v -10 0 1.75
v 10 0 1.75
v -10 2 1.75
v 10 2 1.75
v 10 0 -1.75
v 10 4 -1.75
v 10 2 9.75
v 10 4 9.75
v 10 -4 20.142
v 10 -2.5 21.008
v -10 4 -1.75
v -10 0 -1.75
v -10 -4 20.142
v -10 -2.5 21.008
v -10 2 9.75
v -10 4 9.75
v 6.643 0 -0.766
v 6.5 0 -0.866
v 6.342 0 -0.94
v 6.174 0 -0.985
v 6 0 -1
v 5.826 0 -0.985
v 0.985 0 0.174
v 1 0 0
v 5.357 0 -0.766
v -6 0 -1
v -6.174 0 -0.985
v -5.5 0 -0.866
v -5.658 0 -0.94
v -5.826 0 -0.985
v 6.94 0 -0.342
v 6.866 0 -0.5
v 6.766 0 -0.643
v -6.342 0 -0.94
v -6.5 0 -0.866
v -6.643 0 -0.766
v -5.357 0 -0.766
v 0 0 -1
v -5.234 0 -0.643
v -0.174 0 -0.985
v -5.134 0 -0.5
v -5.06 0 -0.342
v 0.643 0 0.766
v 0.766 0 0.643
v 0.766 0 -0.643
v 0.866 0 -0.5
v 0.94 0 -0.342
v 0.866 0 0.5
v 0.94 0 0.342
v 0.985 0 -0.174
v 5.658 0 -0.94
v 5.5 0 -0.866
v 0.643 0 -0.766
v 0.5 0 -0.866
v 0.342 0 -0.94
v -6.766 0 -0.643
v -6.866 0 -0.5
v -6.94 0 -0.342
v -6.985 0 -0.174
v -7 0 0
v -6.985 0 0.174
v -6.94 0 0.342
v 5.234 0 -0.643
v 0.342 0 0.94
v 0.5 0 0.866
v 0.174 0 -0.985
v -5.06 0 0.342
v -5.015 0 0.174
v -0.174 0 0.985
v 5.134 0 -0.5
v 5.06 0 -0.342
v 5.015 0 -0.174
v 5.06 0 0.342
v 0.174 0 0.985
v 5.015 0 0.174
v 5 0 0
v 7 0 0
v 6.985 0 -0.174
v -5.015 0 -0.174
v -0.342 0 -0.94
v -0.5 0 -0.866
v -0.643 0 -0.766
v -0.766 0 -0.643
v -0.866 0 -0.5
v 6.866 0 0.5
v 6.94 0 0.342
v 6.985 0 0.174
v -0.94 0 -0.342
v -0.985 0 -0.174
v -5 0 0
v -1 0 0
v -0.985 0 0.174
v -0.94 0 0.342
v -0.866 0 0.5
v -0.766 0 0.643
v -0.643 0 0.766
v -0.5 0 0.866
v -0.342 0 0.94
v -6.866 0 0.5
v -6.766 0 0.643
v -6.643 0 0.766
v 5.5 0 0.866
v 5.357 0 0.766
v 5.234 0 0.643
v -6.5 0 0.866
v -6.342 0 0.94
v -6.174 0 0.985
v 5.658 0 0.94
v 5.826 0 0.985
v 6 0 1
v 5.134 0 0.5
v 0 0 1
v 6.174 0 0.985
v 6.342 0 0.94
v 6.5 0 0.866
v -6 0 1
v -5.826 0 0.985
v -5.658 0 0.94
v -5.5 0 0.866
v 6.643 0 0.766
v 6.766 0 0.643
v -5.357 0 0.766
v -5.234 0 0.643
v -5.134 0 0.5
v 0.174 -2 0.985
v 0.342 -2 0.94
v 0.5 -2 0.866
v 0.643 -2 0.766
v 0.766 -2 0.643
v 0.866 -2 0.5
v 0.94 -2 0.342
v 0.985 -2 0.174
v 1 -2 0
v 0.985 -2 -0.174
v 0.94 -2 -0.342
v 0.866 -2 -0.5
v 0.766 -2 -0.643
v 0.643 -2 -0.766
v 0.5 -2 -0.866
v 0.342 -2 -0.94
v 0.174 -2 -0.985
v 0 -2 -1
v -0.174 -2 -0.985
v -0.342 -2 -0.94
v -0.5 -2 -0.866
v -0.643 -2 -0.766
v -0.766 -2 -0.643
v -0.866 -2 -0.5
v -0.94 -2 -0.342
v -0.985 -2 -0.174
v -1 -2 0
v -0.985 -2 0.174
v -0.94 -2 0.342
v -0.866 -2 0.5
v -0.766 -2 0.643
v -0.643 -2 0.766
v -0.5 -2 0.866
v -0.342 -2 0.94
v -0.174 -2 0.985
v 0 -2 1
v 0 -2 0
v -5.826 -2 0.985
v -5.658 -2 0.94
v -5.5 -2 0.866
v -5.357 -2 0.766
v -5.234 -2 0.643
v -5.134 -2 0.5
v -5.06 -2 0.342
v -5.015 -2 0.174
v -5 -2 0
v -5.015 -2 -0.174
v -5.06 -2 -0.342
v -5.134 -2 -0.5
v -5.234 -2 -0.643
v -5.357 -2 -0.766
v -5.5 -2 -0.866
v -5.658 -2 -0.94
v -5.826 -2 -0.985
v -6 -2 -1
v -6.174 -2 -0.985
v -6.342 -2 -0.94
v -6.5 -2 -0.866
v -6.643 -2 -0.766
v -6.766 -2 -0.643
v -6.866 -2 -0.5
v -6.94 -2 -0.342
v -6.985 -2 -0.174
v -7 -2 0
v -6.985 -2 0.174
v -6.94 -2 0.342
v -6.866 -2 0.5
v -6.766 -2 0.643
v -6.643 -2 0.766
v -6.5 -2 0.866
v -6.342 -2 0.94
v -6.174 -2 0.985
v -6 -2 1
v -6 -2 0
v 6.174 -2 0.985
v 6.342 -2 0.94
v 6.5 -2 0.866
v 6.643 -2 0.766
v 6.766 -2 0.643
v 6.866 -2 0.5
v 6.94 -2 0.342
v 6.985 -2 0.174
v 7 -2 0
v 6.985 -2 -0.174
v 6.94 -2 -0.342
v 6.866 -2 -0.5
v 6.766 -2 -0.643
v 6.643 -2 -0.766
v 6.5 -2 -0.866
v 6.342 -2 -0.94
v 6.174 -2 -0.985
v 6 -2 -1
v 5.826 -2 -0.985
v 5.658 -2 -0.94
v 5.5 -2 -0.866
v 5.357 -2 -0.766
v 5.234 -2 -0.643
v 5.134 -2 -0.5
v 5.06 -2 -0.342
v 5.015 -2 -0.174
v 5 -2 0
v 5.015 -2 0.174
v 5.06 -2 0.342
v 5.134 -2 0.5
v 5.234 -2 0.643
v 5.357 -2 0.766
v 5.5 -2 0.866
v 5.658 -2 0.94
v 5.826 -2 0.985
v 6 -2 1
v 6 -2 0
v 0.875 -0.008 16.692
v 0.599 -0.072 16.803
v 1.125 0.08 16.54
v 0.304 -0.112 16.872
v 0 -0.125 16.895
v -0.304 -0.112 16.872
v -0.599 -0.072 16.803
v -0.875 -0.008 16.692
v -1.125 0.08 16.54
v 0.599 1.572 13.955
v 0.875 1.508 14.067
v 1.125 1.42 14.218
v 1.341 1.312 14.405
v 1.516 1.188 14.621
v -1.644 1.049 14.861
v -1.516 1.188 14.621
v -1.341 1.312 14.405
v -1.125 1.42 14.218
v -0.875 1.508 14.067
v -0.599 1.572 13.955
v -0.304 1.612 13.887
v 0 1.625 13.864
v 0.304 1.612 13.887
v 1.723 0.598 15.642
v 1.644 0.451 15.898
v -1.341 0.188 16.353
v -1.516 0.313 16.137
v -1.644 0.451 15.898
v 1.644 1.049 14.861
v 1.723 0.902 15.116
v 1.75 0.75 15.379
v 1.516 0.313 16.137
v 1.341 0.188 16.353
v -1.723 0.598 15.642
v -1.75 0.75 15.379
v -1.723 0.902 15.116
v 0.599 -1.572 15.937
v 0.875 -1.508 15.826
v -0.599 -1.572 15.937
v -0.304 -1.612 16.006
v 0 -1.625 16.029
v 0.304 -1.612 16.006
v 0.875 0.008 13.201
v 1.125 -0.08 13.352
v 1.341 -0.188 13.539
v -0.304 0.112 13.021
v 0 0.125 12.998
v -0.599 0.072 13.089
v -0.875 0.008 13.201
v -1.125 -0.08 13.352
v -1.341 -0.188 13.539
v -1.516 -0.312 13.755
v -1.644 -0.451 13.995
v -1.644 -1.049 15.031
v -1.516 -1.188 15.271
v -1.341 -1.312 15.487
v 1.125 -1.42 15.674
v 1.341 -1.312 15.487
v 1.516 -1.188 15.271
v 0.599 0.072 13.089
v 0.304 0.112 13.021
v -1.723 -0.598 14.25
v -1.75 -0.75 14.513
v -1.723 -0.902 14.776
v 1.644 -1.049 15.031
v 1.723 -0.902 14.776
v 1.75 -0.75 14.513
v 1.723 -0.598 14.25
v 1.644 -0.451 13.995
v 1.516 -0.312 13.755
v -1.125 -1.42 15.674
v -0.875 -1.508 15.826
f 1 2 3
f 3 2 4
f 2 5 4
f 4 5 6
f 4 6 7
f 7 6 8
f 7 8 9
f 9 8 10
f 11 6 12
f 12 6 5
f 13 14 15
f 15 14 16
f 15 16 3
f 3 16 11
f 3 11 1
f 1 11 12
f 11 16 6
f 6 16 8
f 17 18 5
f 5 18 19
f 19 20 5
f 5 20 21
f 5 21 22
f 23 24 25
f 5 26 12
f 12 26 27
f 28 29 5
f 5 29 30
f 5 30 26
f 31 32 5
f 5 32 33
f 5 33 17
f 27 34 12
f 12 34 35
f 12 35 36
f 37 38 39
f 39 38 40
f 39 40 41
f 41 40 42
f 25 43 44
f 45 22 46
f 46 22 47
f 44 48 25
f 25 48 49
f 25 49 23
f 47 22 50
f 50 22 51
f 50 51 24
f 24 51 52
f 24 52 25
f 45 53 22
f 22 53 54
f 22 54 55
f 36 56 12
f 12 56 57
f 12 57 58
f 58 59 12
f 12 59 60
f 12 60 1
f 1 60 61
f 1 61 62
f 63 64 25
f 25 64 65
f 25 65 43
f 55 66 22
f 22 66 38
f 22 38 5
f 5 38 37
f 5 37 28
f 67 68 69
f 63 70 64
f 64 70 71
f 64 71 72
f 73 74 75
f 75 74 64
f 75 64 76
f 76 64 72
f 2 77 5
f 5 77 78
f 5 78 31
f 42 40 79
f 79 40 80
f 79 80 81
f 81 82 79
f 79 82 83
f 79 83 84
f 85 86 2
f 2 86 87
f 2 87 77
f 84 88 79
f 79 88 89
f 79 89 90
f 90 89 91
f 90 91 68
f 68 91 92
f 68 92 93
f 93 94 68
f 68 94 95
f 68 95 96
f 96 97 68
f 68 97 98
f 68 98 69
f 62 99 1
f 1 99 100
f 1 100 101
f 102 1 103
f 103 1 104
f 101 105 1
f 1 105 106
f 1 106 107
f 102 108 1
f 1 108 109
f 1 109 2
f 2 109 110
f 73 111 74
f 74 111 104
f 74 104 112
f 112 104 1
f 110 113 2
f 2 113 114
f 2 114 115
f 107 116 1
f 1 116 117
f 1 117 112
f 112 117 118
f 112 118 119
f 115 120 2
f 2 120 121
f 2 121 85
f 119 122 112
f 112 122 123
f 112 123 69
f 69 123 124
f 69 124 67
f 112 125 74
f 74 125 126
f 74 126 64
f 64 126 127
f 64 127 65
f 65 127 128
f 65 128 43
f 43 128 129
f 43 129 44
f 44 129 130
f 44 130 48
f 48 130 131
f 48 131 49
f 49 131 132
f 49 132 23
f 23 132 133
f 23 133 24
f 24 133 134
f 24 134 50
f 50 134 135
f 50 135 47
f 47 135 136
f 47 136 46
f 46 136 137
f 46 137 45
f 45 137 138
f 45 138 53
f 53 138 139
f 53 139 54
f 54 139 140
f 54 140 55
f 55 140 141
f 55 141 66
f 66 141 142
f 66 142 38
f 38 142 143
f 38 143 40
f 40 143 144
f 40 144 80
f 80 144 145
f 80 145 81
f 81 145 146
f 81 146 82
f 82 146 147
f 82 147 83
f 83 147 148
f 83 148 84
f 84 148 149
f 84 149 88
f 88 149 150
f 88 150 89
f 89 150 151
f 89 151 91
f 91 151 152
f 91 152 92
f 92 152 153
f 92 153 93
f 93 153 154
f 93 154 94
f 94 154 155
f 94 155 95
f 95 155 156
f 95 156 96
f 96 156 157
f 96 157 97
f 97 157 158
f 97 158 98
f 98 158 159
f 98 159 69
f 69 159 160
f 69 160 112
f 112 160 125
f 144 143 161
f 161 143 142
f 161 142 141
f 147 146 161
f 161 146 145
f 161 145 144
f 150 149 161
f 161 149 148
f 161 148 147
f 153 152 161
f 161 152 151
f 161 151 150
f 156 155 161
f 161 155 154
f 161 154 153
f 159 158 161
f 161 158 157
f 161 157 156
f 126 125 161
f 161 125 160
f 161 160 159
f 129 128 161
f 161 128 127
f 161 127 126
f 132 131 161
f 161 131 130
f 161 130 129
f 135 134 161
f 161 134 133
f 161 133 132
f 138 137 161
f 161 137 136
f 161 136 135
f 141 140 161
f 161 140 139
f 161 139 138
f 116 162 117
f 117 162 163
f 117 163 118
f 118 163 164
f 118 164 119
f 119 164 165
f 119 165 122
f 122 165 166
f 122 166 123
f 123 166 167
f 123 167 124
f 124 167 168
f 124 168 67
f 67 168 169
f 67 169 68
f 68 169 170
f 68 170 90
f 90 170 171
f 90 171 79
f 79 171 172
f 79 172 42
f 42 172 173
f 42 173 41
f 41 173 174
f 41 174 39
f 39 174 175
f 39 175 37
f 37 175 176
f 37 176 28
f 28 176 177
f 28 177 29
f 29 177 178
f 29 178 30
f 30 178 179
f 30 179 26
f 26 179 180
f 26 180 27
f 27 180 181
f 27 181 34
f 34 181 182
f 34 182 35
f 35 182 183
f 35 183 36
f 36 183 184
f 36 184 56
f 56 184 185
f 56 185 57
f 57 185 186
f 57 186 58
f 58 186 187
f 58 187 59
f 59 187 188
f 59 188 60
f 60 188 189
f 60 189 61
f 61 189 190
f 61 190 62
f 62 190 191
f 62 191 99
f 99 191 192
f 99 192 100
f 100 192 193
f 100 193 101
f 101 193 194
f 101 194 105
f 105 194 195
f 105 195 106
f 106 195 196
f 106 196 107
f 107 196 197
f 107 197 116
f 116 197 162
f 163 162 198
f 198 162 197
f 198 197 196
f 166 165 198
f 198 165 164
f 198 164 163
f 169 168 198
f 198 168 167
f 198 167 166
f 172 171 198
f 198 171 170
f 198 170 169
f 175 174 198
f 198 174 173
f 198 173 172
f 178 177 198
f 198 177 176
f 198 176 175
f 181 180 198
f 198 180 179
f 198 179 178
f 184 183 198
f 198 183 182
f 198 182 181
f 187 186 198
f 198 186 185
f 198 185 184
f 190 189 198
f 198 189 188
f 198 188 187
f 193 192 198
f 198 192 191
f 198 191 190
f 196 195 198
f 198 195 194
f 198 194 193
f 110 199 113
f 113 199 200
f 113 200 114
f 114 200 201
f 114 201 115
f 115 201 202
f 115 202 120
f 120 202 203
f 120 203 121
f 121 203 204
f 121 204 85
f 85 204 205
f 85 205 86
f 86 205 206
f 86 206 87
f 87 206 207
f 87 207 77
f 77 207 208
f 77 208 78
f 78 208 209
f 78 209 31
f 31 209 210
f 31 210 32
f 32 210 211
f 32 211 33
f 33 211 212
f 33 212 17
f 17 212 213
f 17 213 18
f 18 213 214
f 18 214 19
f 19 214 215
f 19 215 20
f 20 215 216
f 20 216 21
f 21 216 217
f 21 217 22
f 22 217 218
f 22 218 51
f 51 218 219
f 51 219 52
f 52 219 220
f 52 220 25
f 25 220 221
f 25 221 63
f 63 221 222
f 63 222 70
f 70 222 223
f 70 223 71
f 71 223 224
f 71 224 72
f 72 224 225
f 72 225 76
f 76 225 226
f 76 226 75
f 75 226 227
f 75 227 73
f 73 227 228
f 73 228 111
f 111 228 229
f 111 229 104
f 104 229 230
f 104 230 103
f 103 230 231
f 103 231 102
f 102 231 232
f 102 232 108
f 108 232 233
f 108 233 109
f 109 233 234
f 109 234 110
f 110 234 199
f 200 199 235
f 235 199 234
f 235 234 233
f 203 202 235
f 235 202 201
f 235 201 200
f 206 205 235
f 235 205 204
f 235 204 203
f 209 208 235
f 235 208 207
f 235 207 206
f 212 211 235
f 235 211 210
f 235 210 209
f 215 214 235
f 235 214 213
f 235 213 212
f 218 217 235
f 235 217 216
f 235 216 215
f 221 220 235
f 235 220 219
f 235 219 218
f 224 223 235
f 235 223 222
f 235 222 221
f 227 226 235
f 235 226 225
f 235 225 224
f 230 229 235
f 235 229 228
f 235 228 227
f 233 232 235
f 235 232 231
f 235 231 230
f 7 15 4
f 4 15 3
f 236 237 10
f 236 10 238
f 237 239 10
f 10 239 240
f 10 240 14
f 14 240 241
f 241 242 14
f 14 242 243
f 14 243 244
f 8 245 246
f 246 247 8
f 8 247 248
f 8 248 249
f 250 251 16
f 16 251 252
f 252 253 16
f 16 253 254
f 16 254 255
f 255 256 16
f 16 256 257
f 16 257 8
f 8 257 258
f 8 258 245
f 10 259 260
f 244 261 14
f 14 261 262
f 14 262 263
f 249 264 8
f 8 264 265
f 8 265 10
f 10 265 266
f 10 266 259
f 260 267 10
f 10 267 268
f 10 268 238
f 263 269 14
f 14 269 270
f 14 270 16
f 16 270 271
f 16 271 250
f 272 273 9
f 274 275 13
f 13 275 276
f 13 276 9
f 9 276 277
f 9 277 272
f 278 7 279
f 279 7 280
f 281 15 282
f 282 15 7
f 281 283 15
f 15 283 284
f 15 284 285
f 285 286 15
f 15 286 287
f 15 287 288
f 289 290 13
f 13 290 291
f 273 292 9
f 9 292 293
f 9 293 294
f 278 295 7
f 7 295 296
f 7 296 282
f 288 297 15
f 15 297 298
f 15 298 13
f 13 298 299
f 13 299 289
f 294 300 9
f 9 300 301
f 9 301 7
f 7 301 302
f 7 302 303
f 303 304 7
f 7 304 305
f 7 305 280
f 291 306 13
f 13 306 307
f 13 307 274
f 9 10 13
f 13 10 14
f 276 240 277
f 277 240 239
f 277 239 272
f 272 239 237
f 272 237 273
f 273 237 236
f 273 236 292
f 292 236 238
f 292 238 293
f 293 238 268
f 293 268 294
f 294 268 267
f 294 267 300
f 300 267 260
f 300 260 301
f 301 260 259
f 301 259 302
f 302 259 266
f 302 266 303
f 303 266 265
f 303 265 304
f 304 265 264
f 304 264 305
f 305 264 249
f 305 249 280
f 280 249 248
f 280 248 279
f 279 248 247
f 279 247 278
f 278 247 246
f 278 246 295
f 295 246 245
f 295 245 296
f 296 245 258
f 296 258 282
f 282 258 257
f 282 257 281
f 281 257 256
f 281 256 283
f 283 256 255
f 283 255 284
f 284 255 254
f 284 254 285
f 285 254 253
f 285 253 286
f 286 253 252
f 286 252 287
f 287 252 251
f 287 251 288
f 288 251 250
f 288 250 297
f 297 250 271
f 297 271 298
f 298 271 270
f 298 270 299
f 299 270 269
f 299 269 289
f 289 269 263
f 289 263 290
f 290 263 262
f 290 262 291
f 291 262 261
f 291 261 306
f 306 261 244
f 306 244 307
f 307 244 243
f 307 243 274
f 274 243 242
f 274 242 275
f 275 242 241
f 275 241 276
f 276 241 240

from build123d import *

# Parameters (mm, degrees)
CROQUIS1_W                          = 20
CROQUIS1_H                          = 3.5
SALIENTE_EXTRUIR1_DEPTH             = 4
CROQUIS2_R                          = 1
SALIENTE_EXTRUIR2_DEPTH             = 2
CROQUIS3_W                          = 20
CROQUIS3_H                          = 2
SALIENTE_EXTRUIR3_DEPTH             = 8
CROQUIS4_W                          = 20
CROQUIS4_H                          = 1.732050807
SALIENTE_EXTRUIR4_DEPTH             = 12
SALIENTE_EXTRUIR4_DIRECTION_2_REACH = 17.06
CROQUIS5_R                          = 1.75
CORTAR_EXTRUIR1_DEPTH               = 23.571551689


with BuildPart() as part:
    # Croquis1 → Saliente-Extruir1 (new body)
    with BuildSketch(Plane(origin=(0, 0, 0), x_dir=(1, 0, 0), z_dir=(0, 1, 0))):
        Rectangle(CROQUIS1_W, CROQUIS1_H)
    extrude(amount=SALIENTE_EXTRUIR1_DEPTH)

    # Croquis2 → Saliente-Extruir2 (add)
    with BuildSketch(Plane.XZ):
        with Locations(Location((0, 0, 0), (0, 0, 270))):
            Circle(CROQUIS2_R)
        with Locations(Location((-6, 0, 0), (0, 0, 90))):
            Circle(CROQUIS2_R)
        with Locations(Location((6, 0, 0), (0, 0, 90))):
            Circle(CROQUIS2_R)
    extrude(amount=SALIENTE_EXTRUIR2_DEPTH)

    # Croquis3 → Saliente-Extruir3 (add)
    with BuildSketch(Plane.XY.offset(1.75)):
        with Locations((0, 3)):
            Rectangle(CROQUIS3_W, CROQUIS3_H)
    extrude(amount=SALIENTE_EXTRUIR3_DEPTH)

    # Croquis4 → Saliente-Extruir4 (add)
    with BuildSketch(Plane(origin=(0, -3.721873843, 6.446474596), x_dir=(1, 0, 0), z_dir=(0, -0.500000000000001, 0.866025403784438))):
        with Locations((0, 7.473076212)):
            Rectangle(CROQUIS4_W, CROQUIS4_H)
    extrude(amount=SALIENTE_EXTRUIR4_DEPTH)

    # Croquis4 → Saliente-Extruir4 direction 2 (add, up to next)
    with BuildSketch(Plane(origin=(0, -3.721873843, 6.446474596), x_dir=(1, 0, 0), z_dir=(0, -0.500000000000001, 0.866025403784438)), mode=Mode.PRIVATE) as saliente_extruir4_direction_2_sk1:
        with Locations((0, 7.473076212)):
            Rectangle(CROQUIS4_W, CROQUIS4_H)
    saliente_extruir4_direction_2_tool1 = extrude(saliente_extruir4_direction_2_sk1.sketch, amount=-SALIENTE_EXTRUIR4_DIRECTION_2_REACH, mode=Mode.PRIVATE) - part.part
    add(saliente_extruir4_direction_2_tool1.solids().sort_by_distance((0, 2.75, 10.183013))[0])

    # Croquis5 → Cortar-Extruir1 (cut, through all)
    with BuildSketch(Plane(origin=(0, 7.221873843, 4.169550808), x_dir=(1, 0, 0), z_dir=(0, 0.8660254037844382, 0.500000000000001))):
        with Locations(Location((0, -12.943747687, 0), (0, 0, 270))):
            Circle(CROQUIS5_R)
    extrude(amount=-CORTAR_EXTRUIR1_DEPTH, mode=Mode.SUBTRACT)


solid = part.part
